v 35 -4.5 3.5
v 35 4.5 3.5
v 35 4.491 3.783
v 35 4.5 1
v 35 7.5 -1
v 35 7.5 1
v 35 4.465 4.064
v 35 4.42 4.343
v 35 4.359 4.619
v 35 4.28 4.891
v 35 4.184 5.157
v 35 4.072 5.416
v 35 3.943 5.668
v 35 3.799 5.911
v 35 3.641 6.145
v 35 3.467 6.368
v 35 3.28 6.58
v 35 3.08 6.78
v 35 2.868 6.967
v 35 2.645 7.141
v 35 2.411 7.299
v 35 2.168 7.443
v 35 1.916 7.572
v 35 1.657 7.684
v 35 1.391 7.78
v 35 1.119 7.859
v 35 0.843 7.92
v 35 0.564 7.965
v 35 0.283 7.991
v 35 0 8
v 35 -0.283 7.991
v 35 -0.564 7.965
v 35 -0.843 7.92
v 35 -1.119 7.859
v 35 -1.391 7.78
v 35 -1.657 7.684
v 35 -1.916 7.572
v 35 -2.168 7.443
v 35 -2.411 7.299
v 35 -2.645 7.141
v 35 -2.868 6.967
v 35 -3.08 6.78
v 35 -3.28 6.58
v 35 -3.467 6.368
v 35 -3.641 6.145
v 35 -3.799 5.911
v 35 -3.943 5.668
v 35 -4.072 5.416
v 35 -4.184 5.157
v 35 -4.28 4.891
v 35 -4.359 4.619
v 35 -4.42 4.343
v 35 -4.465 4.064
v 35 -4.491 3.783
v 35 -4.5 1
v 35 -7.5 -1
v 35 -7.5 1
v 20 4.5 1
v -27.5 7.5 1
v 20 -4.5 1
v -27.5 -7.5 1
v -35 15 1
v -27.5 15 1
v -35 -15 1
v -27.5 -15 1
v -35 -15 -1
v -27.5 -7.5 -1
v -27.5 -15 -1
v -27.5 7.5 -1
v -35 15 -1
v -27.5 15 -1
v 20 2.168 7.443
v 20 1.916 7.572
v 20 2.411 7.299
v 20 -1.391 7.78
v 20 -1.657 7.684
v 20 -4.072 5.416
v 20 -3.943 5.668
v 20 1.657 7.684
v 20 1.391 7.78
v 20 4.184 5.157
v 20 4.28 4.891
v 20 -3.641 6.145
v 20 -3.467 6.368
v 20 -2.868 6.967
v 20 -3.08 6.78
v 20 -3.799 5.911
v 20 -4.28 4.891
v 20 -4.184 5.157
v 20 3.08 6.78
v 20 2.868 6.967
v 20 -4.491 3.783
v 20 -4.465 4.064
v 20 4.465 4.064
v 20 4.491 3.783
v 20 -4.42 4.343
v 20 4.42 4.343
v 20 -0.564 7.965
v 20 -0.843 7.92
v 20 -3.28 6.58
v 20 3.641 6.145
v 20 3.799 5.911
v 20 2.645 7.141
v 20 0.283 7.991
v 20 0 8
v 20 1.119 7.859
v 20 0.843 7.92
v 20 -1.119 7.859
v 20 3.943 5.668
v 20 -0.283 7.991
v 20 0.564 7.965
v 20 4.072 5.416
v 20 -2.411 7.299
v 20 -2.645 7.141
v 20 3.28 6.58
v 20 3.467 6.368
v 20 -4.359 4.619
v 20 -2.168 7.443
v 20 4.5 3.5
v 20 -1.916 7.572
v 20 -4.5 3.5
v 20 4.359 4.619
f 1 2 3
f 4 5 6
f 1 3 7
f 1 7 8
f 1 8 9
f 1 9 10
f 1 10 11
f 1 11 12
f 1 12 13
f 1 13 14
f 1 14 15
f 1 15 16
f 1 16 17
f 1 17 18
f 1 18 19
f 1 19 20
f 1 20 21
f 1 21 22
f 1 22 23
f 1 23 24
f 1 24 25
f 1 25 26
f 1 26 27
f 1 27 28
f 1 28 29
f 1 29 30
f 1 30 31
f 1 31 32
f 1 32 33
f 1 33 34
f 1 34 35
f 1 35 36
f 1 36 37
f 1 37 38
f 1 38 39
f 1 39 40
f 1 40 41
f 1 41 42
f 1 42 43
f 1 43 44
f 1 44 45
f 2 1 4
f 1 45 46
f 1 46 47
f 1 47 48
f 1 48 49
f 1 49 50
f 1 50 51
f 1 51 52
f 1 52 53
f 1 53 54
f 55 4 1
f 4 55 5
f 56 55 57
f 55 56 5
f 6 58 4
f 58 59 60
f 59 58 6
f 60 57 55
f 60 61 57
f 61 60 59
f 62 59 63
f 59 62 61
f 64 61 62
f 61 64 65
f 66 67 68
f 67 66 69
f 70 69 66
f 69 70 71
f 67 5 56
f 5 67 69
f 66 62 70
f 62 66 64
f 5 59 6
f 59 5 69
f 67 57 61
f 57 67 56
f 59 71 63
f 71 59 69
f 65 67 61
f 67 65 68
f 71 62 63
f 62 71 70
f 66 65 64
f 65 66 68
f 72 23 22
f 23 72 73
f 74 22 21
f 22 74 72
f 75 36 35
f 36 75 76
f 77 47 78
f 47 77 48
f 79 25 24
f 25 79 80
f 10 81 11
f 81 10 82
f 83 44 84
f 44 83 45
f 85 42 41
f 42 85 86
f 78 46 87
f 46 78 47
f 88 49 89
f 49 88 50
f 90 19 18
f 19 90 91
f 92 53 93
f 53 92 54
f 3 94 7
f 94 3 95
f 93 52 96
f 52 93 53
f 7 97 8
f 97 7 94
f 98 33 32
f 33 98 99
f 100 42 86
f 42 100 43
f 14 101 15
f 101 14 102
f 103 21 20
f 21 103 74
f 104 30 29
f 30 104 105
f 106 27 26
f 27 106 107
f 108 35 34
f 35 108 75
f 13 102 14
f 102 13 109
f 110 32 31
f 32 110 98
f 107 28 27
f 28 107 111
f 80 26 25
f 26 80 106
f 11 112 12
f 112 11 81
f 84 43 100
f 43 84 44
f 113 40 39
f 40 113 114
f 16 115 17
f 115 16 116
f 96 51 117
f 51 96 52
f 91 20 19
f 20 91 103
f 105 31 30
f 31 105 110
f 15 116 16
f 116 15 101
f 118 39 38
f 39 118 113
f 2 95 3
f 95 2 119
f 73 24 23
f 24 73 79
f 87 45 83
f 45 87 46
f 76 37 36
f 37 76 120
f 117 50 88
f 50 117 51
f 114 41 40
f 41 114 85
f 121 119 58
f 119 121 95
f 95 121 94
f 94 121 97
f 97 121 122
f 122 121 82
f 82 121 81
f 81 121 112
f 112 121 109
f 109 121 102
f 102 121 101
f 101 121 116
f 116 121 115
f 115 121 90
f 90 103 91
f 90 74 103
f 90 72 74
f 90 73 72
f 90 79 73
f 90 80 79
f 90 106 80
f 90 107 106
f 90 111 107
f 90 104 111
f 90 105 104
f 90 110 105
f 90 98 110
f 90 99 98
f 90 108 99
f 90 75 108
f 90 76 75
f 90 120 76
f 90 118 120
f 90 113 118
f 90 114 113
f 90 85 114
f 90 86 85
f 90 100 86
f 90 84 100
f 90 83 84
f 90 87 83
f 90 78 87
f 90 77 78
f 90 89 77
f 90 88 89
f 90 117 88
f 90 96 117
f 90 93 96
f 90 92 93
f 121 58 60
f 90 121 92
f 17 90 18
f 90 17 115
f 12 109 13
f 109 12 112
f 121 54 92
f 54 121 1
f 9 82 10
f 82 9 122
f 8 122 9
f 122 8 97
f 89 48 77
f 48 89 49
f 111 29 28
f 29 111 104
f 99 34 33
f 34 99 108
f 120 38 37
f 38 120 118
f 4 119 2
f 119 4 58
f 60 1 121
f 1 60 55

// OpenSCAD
/*
    Title: Stand.scad
    Description: Stand for the clock machine and CD.
    Author: Matias Micheletto
    Date: 21-Jun-2021
    Email: matias.micheletto@uns.edu.ar
    Website: https://matiasmicheletto.github.io
*/

$fn = 100;

// Stand base
SW = 15; // Width
SL = 70; // Length
St = 2; // Thickness

// Foot
FW = SW/2;
FL = 30;

// Circular fit
Fr = 4.5; // Fit radius
Fh = 15; // Fit length


// Base
cube([SL, SW, St], center = true);
// Foot
translate([FW/2-SL/2 ,0, 0])
cube([FW, FL, St], center = true);
// Fit
translate([SL/2-Fh, 0, Fr-St/2])
rotate([0, 90, 0])
cylinder(r = Fr, h = Fh);
// Fit lateral filling
translate([SL/2-Fh/2, 0, Fr/2-St/2])
cube([Fh, 2*Fr, Fr], center = true);
